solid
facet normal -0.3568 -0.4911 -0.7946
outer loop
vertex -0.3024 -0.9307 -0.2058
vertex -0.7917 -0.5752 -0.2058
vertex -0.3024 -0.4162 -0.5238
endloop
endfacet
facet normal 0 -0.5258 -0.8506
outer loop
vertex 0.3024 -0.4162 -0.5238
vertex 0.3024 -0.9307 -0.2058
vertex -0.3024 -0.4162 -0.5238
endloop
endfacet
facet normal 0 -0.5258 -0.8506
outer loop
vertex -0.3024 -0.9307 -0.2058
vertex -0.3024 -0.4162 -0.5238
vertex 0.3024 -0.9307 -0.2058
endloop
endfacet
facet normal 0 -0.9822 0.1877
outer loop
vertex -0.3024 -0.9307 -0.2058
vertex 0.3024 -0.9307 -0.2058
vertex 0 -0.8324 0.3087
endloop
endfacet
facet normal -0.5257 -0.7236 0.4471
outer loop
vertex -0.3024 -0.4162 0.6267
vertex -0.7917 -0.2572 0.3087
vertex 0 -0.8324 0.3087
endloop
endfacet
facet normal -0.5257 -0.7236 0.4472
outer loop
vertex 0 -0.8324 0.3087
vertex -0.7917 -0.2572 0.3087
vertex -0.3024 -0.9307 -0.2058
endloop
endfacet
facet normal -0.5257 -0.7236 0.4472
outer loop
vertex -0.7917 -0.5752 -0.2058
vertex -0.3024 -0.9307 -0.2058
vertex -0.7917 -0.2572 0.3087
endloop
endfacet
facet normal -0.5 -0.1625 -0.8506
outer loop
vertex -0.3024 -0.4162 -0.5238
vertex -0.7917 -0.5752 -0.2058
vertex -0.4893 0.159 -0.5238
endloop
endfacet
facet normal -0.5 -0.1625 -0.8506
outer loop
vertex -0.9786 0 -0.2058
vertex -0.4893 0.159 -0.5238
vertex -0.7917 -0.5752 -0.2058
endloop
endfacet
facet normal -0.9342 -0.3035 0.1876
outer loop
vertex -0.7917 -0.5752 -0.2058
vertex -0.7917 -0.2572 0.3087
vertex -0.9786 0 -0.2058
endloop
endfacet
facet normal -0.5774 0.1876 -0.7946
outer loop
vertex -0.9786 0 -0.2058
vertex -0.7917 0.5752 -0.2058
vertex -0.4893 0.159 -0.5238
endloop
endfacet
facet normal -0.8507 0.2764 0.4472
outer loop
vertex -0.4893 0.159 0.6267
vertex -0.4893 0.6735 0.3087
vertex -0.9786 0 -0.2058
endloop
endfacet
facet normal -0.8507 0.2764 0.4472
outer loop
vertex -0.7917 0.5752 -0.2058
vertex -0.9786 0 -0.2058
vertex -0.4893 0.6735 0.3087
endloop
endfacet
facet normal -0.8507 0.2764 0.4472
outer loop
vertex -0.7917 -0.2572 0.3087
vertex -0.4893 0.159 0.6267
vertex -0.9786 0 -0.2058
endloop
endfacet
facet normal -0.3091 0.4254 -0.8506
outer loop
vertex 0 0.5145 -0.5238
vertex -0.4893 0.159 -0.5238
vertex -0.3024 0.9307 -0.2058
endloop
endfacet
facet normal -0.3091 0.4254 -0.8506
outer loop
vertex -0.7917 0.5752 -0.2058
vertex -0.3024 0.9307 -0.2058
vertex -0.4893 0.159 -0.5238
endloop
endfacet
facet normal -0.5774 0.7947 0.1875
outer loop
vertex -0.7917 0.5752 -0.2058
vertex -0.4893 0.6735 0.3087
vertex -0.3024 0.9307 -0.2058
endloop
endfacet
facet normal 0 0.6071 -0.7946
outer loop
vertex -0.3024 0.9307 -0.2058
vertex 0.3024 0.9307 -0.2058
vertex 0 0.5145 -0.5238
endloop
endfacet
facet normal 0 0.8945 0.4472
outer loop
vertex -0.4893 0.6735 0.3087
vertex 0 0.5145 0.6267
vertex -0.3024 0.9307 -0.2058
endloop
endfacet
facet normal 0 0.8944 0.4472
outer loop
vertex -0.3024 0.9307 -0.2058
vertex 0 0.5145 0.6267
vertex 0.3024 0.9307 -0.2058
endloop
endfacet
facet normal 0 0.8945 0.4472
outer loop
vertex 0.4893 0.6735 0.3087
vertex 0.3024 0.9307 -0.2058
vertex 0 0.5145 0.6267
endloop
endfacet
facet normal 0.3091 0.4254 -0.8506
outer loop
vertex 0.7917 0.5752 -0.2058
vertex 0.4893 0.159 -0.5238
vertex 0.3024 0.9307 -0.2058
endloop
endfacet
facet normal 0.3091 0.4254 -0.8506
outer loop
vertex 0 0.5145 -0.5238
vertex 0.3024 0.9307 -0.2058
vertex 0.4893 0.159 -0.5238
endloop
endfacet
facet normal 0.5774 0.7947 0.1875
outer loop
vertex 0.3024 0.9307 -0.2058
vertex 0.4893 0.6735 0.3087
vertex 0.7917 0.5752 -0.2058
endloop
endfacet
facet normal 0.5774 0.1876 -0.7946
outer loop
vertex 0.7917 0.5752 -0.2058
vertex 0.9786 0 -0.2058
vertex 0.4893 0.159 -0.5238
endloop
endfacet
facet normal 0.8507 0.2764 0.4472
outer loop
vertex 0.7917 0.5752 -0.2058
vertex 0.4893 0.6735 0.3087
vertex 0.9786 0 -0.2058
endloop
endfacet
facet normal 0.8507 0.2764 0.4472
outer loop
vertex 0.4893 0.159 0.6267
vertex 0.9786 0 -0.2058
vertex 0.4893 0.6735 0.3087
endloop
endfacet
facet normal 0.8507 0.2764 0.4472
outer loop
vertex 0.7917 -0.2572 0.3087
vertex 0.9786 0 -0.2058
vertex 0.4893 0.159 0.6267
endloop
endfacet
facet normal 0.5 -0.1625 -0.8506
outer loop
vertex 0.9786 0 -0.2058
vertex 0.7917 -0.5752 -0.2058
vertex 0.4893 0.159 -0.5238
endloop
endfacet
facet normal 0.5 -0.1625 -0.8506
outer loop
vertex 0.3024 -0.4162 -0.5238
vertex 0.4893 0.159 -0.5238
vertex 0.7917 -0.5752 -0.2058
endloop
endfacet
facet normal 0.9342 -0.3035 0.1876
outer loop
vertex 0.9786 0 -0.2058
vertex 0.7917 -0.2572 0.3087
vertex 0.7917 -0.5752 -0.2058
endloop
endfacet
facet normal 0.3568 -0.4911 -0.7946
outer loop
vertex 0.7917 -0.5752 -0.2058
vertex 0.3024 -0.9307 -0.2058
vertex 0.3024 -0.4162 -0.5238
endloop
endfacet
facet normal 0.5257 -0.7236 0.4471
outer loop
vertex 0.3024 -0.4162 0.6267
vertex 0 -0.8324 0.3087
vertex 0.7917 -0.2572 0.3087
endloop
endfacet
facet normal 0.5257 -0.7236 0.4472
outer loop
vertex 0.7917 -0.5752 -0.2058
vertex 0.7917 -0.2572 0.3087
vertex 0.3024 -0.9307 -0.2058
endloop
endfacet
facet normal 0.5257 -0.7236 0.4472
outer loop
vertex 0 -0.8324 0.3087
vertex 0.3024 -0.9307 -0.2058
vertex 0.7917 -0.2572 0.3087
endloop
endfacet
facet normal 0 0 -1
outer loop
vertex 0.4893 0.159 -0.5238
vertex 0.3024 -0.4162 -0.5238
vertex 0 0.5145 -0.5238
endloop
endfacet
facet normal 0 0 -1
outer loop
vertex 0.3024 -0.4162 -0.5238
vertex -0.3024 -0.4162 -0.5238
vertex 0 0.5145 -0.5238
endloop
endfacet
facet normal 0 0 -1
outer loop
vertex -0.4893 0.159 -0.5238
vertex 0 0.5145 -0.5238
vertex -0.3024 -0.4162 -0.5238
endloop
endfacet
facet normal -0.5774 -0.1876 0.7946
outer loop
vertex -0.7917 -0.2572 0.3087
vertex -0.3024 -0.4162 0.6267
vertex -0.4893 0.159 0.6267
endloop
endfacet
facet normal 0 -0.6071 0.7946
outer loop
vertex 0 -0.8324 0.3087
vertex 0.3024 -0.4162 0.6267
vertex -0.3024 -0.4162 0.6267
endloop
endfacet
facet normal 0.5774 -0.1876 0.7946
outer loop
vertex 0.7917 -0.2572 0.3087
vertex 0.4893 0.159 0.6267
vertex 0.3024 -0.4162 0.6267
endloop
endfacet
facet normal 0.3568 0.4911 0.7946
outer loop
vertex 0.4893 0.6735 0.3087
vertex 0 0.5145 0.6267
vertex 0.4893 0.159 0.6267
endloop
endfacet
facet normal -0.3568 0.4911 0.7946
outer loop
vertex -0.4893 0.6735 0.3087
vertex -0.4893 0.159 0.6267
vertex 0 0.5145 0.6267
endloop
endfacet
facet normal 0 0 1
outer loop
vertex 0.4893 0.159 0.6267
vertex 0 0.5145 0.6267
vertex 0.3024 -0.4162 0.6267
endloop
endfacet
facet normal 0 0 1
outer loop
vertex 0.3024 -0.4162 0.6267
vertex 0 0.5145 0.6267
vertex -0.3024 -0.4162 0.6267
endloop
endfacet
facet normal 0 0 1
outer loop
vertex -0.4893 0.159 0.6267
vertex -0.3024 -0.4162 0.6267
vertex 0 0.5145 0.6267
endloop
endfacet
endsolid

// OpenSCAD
polyhedron( points = [[-0.302402763041618, -0.930700005338609, -0.205791323829668], [-0.791700711955329, -0.575204236533301, -0.205791323829668], [-0.978595897690228, 6.14756746896495e-11, -0.205791323829668], [-0.791700711800387, 0.575204236605906, -0.205791323829668], [-0.302402762958058, 0.930700005225099, -0.205791323829668], [0.302402763014925, 0.930700005170787, -0.205791323829668], [0.791700711793419, 0.575204236463729, -0.205791323829668], [0.978595897579963, -1.14268717770883e-10, -0.205791323829668], [0.791700711741775, -0.575204236675484, -0.205791323829668], [0.302402762931371, -0.930700005338609, -0.205791323829668], [-0.302402763014465, -0.416221695079852, -0.523756405158109], [-0.489297948781958, 0.158982540881865, -0.523756405491041], [6.75000947402812e-12, 0.514478309439319, -0.523756405491041], [0.48929794870995, 0.158982540764176, -0.523756405491042], [0.302402762756339, -0.416221695205645, -0.523756405080364], [-0.791700711640662, -0.257239154643842, 0.308686985685839], [1.09088535719545e-10, -0.832443391428134, 0.308686985428417], [0.791700711679897, -0.257239154849609, 0.308686985710127], [0.489297948753006, 0.673460850317758, 0.308686985710127], [-0.4892979487677, 0.673460850387202, 0.308686985710127], [-0.302402762702552, -0.416221695624077, 0.626652067211538], [0.302402762875763, -0.416221695677155, 0.626652067479025], [0.489297948672446, 0.158982540773109, 0.626652067479025], [-1.33471254521212e-11, 0.514478309406418, 0.626652067479025], [-0.489297948258388, 0.158982541011747, 0.626652067115023]], faces = [[0, 1, 10], [0, 10, 14, 9], [0, 9, 16], [0, 16, 20, 15, 1], [1, 2, 11, 10], [1, 15, 2], [2, 3, 11], [2, 15, 24, 19, 3], [3, 4, 12, 11], [3, 19, 4], [4, 5, 12], [4, 19, 23, 18, 5], [5, 6, 13, 12], [5, 18, 6], [6, 7, 13], [6, 18, 22, 17, 7], [7, 8, 14, 13], [7, 17, 8], [8, 9, 14], [8, 17, 21, 16, 9], [10, 11, 12, 13, 14], [15, 20, 24], [16, 21, 20], [17, 22, 21], [18, 23, 22], [19, 24, 23], [20, 21, 22, 23, 24]]);
